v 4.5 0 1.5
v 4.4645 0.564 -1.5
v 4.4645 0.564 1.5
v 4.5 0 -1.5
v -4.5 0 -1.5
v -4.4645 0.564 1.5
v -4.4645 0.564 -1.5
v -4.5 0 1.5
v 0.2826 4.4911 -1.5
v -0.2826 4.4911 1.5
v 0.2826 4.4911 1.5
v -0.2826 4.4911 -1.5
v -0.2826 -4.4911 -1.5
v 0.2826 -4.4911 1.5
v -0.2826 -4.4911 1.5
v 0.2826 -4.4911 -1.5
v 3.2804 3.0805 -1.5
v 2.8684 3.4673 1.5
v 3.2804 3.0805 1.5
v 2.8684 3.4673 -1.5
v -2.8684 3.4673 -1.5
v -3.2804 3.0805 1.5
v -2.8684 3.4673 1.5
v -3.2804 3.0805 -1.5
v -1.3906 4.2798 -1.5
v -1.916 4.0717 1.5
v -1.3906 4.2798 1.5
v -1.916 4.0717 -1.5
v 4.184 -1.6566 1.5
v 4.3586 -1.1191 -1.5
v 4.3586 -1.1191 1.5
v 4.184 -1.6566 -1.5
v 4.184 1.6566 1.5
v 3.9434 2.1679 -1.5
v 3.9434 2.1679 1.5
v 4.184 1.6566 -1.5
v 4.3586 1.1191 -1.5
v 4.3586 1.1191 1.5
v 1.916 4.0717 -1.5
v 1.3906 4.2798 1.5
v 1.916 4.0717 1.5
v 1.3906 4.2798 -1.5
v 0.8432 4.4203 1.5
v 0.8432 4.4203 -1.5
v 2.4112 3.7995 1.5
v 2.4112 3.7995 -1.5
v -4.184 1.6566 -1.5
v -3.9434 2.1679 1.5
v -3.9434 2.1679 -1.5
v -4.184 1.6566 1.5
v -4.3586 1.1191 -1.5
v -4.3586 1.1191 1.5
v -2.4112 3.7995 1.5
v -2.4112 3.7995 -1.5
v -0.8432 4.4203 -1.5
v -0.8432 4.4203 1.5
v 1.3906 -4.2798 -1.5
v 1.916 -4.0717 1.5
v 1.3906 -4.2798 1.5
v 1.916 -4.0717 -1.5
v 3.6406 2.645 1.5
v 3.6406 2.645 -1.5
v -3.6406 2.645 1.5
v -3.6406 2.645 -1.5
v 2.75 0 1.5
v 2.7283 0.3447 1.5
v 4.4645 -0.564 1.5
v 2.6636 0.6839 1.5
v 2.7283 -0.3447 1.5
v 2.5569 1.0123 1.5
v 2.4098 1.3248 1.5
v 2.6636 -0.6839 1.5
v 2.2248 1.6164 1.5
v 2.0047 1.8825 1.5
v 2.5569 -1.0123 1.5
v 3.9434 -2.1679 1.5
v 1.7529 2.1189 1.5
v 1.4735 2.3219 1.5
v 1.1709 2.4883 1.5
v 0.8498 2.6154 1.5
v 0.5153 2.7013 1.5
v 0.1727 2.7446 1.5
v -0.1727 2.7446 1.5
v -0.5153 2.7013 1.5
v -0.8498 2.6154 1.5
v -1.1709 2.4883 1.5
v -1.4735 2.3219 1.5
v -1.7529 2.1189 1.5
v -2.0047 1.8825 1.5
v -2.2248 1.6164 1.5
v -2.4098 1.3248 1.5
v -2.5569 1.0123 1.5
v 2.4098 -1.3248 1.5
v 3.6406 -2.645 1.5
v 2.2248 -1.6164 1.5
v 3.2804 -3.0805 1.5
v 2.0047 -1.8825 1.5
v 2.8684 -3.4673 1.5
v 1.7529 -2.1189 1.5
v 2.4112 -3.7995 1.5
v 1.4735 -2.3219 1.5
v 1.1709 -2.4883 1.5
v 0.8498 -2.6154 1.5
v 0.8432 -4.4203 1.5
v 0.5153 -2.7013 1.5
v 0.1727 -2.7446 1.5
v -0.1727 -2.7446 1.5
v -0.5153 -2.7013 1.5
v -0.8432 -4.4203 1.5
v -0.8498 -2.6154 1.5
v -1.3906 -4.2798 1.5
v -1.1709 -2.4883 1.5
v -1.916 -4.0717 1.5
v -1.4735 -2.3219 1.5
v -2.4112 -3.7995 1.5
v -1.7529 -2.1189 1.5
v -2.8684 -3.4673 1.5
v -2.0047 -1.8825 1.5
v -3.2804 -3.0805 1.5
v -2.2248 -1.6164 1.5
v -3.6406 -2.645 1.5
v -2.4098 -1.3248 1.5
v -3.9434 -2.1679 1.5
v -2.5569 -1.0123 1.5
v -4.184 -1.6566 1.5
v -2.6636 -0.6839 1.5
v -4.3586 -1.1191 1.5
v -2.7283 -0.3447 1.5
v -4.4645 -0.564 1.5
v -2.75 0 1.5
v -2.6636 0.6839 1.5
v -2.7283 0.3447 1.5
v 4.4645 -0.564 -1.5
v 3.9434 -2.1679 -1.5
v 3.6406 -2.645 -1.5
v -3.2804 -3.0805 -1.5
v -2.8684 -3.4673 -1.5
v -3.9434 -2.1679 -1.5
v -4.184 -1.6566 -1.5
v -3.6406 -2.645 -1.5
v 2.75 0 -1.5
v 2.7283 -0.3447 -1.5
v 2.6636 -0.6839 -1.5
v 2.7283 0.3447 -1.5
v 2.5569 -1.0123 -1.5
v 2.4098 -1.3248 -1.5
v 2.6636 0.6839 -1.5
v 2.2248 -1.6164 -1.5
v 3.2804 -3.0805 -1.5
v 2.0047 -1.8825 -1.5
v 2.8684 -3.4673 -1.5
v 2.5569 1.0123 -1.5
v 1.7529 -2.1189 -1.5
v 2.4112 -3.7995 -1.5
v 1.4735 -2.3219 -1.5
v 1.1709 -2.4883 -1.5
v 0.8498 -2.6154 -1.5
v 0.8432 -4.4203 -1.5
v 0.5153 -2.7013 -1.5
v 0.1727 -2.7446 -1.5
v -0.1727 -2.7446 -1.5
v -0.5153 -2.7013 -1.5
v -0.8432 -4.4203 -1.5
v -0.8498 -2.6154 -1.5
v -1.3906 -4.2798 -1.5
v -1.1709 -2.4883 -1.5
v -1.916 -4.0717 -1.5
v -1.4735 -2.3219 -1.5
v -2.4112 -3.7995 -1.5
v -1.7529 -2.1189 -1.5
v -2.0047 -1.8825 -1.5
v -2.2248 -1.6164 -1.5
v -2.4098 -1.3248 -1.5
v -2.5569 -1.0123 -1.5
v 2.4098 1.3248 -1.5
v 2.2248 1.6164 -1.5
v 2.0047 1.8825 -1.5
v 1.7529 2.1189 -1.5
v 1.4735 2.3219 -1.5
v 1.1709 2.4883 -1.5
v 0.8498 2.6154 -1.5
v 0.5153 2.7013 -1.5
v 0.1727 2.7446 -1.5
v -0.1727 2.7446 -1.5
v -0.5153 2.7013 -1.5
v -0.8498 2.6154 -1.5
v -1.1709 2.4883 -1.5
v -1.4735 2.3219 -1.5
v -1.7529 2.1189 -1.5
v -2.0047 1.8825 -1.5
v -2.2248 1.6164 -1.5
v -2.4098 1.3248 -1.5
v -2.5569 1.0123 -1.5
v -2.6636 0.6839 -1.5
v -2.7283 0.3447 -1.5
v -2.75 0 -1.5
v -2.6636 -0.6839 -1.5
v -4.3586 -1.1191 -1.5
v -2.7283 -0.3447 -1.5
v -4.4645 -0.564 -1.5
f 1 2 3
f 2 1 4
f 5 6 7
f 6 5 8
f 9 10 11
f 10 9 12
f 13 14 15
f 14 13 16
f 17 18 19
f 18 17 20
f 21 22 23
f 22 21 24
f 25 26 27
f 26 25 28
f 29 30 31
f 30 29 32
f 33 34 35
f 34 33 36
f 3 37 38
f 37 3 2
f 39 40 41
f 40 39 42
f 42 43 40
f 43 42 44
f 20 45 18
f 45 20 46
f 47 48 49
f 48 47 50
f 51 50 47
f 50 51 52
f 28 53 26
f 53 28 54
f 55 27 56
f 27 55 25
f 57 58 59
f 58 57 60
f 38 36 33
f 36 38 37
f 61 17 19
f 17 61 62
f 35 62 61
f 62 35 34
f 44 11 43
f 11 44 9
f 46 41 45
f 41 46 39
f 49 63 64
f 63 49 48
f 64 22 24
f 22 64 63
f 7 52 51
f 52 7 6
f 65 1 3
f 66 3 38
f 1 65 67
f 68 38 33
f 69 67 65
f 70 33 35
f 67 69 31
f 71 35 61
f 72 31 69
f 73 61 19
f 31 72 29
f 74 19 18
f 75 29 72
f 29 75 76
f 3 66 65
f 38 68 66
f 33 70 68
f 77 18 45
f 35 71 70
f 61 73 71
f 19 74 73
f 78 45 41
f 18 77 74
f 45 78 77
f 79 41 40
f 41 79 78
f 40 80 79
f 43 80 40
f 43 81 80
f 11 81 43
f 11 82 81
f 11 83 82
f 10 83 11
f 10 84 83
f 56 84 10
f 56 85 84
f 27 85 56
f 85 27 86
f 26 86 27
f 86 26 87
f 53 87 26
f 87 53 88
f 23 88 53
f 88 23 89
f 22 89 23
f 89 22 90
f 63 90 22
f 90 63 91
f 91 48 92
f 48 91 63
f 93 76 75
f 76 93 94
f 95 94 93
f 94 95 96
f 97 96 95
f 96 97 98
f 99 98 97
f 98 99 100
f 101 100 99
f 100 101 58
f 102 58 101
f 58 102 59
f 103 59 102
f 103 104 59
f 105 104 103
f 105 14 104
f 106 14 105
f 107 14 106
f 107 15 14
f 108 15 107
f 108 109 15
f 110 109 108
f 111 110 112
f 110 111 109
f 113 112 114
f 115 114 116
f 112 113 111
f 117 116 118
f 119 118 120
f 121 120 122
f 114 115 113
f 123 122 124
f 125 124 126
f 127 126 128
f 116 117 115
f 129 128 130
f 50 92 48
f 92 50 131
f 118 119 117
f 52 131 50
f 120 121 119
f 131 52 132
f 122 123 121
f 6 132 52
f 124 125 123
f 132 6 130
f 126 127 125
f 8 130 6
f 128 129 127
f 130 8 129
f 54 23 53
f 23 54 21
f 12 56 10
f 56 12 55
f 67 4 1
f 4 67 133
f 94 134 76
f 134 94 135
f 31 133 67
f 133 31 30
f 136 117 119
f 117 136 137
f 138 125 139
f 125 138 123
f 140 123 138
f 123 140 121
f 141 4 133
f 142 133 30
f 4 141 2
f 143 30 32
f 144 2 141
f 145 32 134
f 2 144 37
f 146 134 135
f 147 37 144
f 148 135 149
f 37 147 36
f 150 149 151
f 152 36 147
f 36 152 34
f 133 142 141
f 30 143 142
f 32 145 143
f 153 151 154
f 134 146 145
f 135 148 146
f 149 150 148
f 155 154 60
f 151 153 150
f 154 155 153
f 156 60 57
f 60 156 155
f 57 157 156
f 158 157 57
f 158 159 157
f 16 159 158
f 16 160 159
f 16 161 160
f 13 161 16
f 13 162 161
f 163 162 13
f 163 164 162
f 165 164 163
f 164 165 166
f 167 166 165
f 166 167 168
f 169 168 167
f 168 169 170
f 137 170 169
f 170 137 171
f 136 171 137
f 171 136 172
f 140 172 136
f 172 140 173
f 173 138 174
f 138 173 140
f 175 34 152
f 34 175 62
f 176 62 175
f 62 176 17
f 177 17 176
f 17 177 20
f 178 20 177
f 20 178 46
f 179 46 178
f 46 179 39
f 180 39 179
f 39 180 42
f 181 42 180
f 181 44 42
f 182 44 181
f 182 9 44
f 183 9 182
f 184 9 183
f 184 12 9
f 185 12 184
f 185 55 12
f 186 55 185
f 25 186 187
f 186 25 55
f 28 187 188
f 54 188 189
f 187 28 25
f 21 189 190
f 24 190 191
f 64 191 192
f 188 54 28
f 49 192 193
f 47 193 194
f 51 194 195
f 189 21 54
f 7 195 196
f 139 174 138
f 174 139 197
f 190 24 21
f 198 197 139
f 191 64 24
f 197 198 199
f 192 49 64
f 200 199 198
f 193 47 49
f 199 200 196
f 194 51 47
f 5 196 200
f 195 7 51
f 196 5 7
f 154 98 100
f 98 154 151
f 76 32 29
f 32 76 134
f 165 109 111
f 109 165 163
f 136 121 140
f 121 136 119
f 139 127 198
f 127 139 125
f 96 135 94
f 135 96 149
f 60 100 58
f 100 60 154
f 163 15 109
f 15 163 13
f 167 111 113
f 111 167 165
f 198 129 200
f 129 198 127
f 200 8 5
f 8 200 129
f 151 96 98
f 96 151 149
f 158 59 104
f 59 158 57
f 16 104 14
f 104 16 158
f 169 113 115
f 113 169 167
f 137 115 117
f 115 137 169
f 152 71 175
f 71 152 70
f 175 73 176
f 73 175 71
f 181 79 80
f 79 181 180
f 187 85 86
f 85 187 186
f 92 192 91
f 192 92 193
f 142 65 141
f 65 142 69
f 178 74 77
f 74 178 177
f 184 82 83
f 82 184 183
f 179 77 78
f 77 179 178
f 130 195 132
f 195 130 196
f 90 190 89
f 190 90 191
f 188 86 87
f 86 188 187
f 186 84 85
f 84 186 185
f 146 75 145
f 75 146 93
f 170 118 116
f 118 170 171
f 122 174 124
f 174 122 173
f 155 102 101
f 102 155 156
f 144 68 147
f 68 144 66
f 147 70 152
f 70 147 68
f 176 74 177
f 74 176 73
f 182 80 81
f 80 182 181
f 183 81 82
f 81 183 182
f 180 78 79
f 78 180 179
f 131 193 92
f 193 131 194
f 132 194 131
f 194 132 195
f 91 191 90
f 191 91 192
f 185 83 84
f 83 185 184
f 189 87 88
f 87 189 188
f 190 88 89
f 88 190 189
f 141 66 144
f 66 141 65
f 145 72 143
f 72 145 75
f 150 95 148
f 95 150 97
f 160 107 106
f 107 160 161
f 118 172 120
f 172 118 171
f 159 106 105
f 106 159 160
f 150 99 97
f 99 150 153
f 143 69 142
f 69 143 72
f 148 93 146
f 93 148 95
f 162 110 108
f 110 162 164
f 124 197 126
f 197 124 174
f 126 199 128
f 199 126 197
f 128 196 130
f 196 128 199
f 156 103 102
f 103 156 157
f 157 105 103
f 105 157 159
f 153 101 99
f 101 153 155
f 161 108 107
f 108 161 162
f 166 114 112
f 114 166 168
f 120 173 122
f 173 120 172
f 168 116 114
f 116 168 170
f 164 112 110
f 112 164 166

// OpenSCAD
$fn = 50;


difference() {
	union() {
		translate(v = [0, 0, -1.5000000000]) {
			cylinder(h = 3, r = 4.5000000000);
		}
	}
	union() {
		translate(v = [0, 0, -100.0000000000]) {
			cylinder(h = 200, r = 2.7500000000);
		}
	}
}
